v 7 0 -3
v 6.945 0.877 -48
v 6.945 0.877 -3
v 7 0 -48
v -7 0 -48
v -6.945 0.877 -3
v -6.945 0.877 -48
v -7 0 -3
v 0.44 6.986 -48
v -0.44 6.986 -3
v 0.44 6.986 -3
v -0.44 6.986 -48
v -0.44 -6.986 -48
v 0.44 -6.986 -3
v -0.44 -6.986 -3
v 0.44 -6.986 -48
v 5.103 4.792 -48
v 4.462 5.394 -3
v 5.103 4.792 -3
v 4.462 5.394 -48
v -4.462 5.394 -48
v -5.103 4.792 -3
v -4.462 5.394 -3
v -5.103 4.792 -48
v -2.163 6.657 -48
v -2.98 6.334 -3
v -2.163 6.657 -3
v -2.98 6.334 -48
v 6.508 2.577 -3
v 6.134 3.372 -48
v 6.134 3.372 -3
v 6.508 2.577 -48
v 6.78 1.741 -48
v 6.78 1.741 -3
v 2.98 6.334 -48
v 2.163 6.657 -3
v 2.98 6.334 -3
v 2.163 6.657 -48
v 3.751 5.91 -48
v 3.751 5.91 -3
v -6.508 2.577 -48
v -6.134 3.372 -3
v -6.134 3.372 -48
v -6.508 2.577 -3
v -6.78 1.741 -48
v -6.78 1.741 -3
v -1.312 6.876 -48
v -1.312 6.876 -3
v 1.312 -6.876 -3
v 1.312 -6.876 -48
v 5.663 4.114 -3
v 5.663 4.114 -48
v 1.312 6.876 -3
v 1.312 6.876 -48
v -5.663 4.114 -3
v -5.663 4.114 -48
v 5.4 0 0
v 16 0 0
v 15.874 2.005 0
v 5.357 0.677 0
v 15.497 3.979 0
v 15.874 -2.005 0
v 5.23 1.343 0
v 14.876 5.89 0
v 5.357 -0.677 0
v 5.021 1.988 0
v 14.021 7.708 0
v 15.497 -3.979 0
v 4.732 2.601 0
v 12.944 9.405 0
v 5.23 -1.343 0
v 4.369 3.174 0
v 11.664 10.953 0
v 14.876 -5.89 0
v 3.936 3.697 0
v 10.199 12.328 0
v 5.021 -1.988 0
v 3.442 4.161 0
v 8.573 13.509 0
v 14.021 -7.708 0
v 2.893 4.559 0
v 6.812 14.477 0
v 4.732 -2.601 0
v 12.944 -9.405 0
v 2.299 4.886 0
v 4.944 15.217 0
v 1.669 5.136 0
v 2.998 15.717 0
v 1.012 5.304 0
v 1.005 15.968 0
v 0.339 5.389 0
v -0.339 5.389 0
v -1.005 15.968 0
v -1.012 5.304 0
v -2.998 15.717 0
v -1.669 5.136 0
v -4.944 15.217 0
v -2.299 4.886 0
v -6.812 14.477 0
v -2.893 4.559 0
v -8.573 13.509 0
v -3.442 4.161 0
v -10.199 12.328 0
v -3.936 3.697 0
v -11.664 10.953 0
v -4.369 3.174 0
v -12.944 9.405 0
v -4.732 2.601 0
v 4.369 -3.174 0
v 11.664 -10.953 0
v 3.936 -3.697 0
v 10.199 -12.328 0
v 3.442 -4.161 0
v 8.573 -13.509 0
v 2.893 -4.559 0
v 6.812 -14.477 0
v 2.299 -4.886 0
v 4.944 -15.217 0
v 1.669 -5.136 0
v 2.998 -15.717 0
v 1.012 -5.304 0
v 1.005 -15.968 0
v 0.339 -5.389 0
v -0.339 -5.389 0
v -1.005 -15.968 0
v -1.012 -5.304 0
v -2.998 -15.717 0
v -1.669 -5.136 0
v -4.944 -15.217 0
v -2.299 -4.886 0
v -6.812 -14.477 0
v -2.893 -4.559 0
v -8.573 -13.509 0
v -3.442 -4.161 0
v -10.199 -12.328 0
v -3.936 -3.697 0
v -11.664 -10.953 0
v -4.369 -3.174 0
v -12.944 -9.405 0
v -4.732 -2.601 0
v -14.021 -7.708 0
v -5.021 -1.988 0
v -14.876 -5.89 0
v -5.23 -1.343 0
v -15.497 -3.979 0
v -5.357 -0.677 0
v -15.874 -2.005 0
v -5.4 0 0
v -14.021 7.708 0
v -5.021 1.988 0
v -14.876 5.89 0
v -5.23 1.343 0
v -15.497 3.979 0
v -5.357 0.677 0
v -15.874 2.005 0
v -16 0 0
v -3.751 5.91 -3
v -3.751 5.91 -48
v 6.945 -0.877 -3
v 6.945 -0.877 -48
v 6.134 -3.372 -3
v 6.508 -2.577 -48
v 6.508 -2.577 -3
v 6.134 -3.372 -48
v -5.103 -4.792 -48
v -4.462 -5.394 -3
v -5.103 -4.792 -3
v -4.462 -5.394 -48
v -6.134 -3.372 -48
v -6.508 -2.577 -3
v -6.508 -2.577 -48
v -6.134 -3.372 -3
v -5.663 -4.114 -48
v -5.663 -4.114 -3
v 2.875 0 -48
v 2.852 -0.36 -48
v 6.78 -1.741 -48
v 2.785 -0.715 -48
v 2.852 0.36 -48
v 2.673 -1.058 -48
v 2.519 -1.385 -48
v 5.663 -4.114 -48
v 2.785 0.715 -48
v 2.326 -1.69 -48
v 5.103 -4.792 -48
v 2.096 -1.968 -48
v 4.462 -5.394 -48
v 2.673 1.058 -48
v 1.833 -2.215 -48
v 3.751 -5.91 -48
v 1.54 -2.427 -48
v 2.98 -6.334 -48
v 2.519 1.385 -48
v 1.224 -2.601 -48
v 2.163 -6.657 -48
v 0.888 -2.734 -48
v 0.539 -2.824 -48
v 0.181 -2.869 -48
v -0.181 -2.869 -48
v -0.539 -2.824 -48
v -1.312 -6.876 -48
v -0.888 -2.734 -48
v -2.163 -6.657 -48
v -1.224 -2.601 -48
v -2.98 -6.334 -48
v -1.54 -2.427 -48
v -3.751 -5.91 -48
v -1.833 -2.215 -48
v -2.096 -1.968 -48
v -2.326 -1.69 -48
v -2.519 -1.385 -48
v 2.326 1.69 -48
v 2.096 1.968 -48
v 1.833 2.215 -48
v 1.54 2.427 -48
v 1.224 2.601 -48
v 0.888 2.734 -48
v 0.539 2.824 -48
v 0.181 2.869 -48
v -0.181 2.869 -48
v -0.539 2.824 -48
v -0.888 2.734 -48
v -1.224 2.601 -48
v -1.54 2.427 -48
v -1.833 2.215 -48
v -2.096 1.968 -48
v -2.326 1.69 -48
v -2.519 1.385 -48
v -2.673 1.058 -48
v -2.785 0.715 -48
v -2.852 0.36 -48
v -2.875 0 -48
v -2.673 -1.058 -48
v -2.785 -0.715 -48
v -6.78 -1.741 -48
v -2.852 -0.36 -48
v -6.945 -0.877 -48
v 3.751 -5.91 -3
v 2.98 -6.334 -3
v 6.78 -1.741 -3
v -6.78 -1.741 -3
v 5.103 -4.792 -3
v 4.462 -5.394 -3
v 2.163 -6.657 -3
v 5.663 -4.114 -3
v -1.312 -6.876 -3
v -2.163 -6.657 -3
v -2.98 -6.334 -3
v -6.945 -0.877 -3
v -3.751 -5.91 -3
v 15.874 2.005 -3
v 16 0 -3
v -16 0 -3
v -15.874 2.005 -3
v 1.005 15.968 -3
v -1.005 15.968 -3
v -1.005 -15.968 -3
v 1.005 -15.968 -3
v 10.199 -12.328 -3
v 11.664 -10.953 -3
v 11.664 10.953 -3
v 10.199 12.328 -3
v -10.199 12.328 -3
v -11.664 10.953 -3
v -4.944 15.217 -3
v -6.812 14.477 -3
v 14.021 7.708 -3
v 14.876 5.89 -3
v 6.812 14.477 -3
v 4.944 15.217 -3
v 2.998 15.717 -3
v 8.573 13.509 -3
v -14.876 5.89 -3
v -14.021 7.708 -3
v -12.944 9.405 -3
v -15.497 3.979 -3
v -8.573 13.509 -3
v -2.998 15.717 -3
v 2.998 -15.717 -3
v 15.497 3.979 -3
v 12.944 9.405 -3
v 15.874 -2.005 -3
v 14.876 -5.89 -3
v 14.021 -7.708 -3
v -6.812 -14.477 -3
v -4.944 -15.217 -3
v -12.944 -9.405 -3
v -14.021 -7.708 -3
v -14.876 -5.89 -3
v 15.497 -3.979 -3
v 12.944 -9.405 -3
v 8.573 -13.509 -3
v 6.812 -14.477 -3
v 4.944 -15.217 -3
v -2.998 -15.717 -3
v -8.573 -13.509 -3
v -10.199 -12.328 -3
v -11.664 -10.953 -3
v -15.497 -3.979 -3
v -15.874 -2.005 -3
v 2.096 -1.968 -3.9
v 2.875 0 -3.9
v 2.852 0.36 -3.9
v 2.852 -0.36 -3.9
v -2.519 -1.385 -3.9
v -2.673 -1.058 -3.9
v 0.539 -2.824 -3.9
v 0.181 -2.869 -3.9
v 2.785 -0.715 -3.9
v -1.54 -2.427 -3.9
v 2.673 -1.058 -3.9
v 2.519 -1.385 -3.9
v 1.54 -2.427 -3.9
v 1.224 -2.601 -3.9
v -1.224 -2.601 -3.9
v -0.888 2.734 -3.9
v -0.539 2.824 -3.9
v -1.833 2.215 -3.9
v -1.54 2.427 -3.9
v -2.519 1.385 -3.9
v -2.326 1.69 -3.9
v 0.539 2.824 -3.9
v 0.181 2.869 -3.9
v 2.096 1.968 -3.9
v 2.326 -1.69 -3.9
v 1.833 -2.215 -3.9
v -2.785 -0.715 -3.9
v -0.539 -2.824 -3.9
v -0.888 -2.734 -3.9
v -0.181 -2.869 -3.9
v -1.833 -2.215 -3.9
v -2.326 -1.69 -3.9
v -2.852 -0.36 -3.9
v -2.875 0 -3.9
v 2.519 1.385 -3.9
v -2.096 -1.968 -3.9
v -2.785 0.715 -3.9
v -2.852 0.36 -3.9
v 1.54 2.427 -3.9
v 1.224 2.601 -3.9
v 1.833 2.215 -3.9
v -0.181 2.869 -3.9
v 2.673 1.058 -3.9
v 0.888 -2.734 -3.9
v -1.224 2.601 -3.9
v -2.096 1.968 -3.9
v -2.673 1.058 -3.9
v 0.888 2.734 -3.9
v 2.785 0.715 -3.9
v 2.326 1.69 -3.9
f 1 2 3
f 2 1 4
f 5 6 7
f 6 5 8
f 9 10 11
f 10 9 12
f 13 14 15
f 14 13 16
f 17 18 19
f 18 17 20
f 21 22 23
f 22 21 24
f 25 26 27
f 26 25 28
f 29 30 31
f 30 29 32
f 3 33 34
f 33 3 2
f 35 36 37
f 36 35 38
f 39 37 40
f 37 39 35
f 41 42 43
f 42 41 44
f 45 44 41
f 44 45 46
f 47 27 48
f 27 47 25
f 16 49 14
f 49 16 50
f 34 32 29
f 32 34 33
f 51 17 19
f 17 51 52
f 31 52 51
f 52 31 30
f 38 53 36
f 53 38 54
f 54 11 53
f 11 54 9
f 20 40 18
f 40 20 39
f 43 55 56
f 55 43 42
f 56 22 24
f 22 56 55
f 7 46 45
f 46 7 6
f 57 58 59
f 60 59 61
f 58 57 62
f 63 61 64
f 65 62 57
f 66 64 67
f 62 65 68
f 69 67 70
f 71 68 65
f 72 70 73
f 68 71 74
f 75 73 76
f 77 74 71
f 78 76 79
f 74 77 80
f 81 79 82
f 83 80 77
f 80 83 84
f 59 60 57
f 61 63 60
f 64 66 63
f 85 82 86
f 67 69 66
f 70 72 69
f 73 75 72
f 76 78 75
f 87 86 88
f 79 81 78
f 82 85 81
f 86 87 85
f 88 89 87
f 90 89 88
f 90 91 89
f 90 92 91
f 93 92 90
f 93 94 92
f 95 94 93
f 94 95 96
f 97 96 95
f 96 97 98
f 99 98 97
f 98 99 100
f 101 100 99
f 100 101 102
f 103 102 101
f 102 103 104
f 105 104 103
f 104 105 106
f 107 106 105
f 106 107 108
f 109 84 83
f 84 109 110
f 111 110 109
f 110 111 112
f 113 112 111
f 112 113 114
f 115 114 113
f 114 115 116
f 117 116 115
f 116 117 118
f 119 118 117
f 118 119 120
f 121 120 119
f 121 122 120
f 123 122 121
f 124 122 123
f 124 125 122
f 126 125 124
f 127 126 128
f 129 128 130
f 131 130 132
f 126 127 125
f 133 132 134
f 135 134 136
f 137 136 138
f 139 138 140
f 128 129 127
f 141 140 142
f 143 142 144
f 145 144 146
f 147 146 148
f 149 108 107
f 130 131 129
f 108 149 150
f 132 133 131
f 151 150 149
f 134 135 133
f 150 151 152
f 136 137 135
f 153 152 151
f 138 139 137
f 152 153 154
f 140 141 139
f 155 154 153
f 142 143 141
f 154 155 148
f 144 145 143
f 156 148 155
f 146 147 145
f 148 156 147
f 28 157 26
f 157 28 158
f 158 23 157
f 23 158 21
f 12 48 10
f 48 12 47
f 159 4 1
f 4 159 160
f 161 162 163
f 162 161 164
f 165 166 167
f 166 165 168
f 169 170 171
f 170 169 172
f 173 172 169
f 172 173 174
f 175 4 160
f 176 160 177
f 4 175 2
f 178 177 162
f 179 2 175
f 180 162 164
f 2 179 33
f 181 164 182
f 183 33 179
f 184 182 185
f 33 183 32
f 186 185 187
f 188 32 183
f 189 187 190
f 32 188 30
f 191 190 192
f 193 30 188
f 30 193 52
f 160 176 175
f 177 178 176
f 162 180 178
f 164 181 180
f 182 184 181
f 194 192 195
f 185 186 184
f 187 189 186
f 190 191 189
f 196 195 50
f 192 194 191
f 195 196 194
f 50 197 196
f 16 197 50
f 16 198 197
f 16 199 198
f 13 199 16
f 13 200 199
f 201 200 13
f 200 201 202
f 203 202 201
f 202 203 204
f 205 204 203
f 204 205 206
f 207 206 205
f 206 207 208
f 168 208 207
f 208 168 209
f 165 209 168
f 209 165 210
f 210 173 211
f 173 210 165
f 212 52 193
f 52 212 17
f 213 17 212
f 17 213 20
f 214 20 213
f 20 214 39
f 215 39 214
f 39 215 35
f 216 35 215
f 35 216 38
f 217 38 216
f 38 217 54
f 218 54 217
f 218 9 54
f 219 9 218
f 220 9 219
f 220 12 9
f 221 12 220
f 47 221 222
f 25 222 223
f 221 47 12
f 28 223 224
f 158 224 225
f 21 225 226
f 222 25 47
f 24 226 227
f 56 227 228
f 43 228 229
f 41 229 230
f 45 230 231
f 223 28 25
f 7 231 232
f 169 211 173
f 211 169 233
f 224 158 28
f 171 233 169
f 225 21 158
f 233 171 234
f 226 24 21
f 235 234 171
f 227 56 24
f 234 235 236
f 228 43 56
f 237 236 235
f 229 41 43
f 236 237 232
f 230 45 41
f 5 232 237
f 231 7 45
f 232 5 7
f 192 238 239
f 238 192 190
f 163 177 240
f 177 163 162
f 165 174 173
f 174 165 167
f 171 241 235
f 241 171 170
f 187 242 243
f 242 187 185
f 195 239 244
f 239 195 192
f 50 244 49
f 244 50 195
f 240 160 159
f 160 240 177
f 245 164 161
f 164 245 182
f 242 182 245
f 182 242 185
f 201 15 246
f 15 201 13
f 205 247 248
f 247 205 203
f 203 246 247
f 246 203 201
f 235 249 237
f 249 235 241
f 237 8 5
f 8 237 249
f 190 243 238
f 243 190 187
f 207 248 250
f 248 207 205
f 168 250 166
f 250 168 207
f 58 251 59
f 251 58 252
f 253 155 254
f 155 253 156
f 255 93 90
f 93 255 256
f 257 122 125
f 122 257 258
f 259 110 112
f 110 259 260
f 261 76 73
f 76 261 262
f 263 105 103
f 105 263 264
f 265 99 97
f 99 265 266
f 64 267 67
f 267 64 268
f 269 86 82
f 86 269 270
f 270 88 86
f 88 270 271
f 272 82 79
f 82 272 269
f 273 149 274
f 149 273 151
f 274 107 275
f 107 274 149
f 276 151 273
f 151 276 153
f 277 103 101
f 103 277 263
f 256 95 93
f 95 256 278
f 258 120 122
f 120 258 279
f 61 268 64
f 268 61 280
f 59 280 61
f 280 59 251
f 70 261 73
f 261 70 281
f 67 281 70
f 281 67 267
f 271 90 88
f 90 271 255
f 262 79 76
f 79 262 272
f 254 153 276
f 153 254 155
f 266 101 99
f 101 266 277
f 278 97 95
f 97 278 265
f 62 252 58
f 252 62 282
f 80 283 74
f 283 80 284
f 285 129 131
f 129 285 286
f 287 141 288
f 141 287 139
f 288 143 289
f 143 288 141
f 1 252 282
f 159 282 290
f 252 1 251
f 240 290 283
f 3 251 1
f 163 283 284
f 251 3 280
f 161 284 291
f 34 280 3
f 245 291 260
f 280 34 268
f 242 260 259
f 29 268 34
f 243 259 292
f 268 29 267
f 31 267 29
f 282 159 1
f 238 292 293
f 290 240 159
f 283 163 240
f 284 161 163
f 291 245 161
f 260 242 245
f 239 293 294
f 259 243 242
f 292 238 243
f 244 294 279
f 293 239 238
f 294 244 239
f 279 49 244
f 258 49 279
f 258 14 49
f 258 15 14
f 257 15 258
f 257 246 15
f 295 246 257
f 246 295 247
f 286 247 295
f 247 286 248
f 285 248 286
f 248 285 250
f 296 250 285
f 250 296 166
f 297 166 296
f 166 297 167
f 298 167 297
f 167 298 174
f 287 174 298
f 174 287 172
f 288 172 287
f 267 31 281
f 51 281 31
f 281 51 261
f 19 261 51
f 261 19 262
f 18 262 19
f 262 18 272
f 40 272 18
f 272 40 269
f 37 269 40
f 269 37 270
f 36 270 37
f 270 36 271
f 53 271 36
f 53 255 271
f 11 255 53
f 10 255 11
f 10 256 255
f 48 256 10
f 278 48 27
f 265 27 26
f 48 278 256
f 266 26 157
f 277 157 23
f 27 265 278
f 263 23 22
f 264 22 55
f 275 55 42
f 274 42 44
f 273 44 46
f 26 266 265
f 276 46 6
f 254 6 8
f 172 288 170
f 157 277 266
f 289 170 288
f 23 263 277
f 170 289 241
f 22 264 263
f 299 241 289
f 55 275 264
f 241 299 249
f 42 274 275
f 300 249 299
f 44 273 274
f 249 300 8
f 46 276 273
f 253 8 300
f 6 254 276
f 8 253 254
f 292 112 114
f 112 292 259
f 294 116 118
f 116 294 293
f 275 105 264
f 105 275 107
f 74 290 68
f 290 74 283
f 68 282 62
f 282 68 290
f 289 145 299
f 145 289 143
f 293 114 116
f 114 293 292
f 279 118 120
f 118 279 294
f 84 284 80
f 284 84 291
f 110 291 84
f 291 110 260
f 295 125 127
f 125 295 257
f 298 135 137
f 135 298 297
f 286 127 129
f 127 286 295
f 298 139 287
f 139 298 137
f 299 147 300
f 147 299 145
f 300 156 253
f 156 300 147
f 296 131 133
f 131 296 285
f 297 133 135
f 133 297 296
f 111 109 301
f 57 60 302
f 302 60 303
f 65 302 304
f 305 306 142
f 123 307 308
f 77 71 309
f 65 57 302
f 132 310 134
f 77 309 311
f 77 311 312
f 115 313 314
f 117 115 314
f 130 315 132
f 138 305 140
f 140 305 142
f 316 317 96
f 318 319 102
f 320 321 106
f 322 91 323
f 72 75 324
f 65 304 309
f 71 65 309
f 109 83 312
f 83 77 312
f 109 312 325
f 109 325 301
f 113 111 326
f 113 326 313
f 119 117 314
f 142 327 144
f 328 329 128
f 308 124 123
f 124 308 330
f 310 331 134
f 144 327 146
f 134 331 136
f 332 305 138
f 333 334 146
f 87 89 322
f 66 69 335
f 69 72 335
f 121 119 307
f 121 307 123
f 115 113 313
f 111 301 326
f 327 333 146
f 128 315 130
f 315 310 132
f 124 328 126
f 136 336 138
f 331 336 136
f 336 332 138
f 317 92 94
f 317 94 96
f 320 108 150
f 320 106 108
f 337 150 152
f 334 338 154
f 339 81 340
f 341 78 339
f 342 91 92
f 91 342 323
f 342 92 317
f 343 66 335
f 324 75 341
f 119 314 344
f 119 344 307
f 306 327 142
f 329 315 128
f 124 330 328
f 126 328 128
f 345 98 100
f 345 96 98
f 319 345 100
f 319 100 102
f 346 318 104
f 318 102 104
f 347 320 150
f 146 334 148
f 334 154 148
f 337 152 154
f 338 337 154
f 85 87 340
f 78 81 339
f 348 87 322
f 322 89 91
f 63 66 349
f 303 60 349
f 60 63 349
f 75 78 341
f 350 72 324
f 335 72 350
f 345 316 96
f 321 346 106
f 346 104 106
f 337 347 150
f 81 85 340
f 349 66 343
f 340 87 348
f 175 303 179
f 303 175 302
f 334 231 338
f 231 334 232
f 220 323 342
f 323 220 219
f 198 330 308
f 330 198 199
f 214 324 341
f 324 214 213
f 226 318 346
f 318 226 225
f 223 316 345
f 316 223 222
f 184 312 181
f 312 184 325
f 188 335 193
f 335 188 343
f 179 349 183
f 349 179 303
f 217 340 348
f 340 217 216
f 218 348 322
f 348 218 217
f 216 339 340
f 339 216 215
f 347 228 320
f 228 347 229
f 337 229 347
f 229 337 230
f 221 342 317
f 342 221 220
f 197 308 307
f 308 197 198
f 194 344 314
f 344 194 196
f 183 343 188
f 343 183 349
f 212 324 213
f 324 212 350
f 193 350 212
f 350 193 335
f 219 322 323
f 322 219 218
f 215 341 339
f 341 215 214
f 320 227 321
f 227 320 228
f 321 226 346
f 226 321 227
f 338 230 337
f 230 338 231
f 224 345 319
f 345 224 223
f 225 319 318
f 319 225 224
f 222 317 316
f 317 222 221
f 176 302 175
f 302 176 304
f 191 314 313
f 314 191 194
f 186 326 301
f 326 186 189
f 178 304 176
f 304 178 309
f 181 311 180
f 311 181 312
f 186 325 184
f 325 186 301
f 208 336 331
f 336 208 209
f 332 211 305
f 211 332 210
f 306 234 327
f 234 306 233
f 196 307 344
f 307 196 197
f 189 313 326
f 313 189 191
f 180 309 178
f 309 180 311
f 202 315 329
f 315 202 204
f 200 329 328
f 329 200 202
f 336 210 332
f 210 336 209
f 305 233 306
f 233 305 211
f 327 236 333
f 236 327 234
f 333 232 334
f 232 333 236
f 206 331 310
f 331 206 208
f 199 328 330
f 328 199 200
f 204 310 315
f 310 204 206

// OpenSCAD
$fn = 50;


difference() {
	union() {
		translate(v = [0, 0, -48.0000000000]) {
			cylinder(h = 48, r = 7.0000000000);
		}
		translate(v = [0, 0, -3.0000000000]) {
			cylinder(h = 3, r = 16.0000000000);
		}
	}
	union() {
		translate(v = [0, 0, 0]) {
			rotate(a = [0, 0, 0]) {
				difference() {
					union() {
						#translate(v = [0, 0, -48.0000000000]) {
							cylinder(h = 48, r = 2.6000000000);
						}
						#translate(v = [0, 0, -3.9000000000]) {
							cylinder(h = 3.9000000000, r1 = 2.8750000000, r2 = 5.4000000000);
						}
						#translate(v = [0, 0, -48.0000000000]) {
							cylinder(h = 48, r = 2.8750000000);
						}
						#translate(v = [0, 0, -48.0000000000]) {
							cylinder(h = 48, r = 2.6000000000);
						}
					}
					union();
				}
			}
		}
	}
}
